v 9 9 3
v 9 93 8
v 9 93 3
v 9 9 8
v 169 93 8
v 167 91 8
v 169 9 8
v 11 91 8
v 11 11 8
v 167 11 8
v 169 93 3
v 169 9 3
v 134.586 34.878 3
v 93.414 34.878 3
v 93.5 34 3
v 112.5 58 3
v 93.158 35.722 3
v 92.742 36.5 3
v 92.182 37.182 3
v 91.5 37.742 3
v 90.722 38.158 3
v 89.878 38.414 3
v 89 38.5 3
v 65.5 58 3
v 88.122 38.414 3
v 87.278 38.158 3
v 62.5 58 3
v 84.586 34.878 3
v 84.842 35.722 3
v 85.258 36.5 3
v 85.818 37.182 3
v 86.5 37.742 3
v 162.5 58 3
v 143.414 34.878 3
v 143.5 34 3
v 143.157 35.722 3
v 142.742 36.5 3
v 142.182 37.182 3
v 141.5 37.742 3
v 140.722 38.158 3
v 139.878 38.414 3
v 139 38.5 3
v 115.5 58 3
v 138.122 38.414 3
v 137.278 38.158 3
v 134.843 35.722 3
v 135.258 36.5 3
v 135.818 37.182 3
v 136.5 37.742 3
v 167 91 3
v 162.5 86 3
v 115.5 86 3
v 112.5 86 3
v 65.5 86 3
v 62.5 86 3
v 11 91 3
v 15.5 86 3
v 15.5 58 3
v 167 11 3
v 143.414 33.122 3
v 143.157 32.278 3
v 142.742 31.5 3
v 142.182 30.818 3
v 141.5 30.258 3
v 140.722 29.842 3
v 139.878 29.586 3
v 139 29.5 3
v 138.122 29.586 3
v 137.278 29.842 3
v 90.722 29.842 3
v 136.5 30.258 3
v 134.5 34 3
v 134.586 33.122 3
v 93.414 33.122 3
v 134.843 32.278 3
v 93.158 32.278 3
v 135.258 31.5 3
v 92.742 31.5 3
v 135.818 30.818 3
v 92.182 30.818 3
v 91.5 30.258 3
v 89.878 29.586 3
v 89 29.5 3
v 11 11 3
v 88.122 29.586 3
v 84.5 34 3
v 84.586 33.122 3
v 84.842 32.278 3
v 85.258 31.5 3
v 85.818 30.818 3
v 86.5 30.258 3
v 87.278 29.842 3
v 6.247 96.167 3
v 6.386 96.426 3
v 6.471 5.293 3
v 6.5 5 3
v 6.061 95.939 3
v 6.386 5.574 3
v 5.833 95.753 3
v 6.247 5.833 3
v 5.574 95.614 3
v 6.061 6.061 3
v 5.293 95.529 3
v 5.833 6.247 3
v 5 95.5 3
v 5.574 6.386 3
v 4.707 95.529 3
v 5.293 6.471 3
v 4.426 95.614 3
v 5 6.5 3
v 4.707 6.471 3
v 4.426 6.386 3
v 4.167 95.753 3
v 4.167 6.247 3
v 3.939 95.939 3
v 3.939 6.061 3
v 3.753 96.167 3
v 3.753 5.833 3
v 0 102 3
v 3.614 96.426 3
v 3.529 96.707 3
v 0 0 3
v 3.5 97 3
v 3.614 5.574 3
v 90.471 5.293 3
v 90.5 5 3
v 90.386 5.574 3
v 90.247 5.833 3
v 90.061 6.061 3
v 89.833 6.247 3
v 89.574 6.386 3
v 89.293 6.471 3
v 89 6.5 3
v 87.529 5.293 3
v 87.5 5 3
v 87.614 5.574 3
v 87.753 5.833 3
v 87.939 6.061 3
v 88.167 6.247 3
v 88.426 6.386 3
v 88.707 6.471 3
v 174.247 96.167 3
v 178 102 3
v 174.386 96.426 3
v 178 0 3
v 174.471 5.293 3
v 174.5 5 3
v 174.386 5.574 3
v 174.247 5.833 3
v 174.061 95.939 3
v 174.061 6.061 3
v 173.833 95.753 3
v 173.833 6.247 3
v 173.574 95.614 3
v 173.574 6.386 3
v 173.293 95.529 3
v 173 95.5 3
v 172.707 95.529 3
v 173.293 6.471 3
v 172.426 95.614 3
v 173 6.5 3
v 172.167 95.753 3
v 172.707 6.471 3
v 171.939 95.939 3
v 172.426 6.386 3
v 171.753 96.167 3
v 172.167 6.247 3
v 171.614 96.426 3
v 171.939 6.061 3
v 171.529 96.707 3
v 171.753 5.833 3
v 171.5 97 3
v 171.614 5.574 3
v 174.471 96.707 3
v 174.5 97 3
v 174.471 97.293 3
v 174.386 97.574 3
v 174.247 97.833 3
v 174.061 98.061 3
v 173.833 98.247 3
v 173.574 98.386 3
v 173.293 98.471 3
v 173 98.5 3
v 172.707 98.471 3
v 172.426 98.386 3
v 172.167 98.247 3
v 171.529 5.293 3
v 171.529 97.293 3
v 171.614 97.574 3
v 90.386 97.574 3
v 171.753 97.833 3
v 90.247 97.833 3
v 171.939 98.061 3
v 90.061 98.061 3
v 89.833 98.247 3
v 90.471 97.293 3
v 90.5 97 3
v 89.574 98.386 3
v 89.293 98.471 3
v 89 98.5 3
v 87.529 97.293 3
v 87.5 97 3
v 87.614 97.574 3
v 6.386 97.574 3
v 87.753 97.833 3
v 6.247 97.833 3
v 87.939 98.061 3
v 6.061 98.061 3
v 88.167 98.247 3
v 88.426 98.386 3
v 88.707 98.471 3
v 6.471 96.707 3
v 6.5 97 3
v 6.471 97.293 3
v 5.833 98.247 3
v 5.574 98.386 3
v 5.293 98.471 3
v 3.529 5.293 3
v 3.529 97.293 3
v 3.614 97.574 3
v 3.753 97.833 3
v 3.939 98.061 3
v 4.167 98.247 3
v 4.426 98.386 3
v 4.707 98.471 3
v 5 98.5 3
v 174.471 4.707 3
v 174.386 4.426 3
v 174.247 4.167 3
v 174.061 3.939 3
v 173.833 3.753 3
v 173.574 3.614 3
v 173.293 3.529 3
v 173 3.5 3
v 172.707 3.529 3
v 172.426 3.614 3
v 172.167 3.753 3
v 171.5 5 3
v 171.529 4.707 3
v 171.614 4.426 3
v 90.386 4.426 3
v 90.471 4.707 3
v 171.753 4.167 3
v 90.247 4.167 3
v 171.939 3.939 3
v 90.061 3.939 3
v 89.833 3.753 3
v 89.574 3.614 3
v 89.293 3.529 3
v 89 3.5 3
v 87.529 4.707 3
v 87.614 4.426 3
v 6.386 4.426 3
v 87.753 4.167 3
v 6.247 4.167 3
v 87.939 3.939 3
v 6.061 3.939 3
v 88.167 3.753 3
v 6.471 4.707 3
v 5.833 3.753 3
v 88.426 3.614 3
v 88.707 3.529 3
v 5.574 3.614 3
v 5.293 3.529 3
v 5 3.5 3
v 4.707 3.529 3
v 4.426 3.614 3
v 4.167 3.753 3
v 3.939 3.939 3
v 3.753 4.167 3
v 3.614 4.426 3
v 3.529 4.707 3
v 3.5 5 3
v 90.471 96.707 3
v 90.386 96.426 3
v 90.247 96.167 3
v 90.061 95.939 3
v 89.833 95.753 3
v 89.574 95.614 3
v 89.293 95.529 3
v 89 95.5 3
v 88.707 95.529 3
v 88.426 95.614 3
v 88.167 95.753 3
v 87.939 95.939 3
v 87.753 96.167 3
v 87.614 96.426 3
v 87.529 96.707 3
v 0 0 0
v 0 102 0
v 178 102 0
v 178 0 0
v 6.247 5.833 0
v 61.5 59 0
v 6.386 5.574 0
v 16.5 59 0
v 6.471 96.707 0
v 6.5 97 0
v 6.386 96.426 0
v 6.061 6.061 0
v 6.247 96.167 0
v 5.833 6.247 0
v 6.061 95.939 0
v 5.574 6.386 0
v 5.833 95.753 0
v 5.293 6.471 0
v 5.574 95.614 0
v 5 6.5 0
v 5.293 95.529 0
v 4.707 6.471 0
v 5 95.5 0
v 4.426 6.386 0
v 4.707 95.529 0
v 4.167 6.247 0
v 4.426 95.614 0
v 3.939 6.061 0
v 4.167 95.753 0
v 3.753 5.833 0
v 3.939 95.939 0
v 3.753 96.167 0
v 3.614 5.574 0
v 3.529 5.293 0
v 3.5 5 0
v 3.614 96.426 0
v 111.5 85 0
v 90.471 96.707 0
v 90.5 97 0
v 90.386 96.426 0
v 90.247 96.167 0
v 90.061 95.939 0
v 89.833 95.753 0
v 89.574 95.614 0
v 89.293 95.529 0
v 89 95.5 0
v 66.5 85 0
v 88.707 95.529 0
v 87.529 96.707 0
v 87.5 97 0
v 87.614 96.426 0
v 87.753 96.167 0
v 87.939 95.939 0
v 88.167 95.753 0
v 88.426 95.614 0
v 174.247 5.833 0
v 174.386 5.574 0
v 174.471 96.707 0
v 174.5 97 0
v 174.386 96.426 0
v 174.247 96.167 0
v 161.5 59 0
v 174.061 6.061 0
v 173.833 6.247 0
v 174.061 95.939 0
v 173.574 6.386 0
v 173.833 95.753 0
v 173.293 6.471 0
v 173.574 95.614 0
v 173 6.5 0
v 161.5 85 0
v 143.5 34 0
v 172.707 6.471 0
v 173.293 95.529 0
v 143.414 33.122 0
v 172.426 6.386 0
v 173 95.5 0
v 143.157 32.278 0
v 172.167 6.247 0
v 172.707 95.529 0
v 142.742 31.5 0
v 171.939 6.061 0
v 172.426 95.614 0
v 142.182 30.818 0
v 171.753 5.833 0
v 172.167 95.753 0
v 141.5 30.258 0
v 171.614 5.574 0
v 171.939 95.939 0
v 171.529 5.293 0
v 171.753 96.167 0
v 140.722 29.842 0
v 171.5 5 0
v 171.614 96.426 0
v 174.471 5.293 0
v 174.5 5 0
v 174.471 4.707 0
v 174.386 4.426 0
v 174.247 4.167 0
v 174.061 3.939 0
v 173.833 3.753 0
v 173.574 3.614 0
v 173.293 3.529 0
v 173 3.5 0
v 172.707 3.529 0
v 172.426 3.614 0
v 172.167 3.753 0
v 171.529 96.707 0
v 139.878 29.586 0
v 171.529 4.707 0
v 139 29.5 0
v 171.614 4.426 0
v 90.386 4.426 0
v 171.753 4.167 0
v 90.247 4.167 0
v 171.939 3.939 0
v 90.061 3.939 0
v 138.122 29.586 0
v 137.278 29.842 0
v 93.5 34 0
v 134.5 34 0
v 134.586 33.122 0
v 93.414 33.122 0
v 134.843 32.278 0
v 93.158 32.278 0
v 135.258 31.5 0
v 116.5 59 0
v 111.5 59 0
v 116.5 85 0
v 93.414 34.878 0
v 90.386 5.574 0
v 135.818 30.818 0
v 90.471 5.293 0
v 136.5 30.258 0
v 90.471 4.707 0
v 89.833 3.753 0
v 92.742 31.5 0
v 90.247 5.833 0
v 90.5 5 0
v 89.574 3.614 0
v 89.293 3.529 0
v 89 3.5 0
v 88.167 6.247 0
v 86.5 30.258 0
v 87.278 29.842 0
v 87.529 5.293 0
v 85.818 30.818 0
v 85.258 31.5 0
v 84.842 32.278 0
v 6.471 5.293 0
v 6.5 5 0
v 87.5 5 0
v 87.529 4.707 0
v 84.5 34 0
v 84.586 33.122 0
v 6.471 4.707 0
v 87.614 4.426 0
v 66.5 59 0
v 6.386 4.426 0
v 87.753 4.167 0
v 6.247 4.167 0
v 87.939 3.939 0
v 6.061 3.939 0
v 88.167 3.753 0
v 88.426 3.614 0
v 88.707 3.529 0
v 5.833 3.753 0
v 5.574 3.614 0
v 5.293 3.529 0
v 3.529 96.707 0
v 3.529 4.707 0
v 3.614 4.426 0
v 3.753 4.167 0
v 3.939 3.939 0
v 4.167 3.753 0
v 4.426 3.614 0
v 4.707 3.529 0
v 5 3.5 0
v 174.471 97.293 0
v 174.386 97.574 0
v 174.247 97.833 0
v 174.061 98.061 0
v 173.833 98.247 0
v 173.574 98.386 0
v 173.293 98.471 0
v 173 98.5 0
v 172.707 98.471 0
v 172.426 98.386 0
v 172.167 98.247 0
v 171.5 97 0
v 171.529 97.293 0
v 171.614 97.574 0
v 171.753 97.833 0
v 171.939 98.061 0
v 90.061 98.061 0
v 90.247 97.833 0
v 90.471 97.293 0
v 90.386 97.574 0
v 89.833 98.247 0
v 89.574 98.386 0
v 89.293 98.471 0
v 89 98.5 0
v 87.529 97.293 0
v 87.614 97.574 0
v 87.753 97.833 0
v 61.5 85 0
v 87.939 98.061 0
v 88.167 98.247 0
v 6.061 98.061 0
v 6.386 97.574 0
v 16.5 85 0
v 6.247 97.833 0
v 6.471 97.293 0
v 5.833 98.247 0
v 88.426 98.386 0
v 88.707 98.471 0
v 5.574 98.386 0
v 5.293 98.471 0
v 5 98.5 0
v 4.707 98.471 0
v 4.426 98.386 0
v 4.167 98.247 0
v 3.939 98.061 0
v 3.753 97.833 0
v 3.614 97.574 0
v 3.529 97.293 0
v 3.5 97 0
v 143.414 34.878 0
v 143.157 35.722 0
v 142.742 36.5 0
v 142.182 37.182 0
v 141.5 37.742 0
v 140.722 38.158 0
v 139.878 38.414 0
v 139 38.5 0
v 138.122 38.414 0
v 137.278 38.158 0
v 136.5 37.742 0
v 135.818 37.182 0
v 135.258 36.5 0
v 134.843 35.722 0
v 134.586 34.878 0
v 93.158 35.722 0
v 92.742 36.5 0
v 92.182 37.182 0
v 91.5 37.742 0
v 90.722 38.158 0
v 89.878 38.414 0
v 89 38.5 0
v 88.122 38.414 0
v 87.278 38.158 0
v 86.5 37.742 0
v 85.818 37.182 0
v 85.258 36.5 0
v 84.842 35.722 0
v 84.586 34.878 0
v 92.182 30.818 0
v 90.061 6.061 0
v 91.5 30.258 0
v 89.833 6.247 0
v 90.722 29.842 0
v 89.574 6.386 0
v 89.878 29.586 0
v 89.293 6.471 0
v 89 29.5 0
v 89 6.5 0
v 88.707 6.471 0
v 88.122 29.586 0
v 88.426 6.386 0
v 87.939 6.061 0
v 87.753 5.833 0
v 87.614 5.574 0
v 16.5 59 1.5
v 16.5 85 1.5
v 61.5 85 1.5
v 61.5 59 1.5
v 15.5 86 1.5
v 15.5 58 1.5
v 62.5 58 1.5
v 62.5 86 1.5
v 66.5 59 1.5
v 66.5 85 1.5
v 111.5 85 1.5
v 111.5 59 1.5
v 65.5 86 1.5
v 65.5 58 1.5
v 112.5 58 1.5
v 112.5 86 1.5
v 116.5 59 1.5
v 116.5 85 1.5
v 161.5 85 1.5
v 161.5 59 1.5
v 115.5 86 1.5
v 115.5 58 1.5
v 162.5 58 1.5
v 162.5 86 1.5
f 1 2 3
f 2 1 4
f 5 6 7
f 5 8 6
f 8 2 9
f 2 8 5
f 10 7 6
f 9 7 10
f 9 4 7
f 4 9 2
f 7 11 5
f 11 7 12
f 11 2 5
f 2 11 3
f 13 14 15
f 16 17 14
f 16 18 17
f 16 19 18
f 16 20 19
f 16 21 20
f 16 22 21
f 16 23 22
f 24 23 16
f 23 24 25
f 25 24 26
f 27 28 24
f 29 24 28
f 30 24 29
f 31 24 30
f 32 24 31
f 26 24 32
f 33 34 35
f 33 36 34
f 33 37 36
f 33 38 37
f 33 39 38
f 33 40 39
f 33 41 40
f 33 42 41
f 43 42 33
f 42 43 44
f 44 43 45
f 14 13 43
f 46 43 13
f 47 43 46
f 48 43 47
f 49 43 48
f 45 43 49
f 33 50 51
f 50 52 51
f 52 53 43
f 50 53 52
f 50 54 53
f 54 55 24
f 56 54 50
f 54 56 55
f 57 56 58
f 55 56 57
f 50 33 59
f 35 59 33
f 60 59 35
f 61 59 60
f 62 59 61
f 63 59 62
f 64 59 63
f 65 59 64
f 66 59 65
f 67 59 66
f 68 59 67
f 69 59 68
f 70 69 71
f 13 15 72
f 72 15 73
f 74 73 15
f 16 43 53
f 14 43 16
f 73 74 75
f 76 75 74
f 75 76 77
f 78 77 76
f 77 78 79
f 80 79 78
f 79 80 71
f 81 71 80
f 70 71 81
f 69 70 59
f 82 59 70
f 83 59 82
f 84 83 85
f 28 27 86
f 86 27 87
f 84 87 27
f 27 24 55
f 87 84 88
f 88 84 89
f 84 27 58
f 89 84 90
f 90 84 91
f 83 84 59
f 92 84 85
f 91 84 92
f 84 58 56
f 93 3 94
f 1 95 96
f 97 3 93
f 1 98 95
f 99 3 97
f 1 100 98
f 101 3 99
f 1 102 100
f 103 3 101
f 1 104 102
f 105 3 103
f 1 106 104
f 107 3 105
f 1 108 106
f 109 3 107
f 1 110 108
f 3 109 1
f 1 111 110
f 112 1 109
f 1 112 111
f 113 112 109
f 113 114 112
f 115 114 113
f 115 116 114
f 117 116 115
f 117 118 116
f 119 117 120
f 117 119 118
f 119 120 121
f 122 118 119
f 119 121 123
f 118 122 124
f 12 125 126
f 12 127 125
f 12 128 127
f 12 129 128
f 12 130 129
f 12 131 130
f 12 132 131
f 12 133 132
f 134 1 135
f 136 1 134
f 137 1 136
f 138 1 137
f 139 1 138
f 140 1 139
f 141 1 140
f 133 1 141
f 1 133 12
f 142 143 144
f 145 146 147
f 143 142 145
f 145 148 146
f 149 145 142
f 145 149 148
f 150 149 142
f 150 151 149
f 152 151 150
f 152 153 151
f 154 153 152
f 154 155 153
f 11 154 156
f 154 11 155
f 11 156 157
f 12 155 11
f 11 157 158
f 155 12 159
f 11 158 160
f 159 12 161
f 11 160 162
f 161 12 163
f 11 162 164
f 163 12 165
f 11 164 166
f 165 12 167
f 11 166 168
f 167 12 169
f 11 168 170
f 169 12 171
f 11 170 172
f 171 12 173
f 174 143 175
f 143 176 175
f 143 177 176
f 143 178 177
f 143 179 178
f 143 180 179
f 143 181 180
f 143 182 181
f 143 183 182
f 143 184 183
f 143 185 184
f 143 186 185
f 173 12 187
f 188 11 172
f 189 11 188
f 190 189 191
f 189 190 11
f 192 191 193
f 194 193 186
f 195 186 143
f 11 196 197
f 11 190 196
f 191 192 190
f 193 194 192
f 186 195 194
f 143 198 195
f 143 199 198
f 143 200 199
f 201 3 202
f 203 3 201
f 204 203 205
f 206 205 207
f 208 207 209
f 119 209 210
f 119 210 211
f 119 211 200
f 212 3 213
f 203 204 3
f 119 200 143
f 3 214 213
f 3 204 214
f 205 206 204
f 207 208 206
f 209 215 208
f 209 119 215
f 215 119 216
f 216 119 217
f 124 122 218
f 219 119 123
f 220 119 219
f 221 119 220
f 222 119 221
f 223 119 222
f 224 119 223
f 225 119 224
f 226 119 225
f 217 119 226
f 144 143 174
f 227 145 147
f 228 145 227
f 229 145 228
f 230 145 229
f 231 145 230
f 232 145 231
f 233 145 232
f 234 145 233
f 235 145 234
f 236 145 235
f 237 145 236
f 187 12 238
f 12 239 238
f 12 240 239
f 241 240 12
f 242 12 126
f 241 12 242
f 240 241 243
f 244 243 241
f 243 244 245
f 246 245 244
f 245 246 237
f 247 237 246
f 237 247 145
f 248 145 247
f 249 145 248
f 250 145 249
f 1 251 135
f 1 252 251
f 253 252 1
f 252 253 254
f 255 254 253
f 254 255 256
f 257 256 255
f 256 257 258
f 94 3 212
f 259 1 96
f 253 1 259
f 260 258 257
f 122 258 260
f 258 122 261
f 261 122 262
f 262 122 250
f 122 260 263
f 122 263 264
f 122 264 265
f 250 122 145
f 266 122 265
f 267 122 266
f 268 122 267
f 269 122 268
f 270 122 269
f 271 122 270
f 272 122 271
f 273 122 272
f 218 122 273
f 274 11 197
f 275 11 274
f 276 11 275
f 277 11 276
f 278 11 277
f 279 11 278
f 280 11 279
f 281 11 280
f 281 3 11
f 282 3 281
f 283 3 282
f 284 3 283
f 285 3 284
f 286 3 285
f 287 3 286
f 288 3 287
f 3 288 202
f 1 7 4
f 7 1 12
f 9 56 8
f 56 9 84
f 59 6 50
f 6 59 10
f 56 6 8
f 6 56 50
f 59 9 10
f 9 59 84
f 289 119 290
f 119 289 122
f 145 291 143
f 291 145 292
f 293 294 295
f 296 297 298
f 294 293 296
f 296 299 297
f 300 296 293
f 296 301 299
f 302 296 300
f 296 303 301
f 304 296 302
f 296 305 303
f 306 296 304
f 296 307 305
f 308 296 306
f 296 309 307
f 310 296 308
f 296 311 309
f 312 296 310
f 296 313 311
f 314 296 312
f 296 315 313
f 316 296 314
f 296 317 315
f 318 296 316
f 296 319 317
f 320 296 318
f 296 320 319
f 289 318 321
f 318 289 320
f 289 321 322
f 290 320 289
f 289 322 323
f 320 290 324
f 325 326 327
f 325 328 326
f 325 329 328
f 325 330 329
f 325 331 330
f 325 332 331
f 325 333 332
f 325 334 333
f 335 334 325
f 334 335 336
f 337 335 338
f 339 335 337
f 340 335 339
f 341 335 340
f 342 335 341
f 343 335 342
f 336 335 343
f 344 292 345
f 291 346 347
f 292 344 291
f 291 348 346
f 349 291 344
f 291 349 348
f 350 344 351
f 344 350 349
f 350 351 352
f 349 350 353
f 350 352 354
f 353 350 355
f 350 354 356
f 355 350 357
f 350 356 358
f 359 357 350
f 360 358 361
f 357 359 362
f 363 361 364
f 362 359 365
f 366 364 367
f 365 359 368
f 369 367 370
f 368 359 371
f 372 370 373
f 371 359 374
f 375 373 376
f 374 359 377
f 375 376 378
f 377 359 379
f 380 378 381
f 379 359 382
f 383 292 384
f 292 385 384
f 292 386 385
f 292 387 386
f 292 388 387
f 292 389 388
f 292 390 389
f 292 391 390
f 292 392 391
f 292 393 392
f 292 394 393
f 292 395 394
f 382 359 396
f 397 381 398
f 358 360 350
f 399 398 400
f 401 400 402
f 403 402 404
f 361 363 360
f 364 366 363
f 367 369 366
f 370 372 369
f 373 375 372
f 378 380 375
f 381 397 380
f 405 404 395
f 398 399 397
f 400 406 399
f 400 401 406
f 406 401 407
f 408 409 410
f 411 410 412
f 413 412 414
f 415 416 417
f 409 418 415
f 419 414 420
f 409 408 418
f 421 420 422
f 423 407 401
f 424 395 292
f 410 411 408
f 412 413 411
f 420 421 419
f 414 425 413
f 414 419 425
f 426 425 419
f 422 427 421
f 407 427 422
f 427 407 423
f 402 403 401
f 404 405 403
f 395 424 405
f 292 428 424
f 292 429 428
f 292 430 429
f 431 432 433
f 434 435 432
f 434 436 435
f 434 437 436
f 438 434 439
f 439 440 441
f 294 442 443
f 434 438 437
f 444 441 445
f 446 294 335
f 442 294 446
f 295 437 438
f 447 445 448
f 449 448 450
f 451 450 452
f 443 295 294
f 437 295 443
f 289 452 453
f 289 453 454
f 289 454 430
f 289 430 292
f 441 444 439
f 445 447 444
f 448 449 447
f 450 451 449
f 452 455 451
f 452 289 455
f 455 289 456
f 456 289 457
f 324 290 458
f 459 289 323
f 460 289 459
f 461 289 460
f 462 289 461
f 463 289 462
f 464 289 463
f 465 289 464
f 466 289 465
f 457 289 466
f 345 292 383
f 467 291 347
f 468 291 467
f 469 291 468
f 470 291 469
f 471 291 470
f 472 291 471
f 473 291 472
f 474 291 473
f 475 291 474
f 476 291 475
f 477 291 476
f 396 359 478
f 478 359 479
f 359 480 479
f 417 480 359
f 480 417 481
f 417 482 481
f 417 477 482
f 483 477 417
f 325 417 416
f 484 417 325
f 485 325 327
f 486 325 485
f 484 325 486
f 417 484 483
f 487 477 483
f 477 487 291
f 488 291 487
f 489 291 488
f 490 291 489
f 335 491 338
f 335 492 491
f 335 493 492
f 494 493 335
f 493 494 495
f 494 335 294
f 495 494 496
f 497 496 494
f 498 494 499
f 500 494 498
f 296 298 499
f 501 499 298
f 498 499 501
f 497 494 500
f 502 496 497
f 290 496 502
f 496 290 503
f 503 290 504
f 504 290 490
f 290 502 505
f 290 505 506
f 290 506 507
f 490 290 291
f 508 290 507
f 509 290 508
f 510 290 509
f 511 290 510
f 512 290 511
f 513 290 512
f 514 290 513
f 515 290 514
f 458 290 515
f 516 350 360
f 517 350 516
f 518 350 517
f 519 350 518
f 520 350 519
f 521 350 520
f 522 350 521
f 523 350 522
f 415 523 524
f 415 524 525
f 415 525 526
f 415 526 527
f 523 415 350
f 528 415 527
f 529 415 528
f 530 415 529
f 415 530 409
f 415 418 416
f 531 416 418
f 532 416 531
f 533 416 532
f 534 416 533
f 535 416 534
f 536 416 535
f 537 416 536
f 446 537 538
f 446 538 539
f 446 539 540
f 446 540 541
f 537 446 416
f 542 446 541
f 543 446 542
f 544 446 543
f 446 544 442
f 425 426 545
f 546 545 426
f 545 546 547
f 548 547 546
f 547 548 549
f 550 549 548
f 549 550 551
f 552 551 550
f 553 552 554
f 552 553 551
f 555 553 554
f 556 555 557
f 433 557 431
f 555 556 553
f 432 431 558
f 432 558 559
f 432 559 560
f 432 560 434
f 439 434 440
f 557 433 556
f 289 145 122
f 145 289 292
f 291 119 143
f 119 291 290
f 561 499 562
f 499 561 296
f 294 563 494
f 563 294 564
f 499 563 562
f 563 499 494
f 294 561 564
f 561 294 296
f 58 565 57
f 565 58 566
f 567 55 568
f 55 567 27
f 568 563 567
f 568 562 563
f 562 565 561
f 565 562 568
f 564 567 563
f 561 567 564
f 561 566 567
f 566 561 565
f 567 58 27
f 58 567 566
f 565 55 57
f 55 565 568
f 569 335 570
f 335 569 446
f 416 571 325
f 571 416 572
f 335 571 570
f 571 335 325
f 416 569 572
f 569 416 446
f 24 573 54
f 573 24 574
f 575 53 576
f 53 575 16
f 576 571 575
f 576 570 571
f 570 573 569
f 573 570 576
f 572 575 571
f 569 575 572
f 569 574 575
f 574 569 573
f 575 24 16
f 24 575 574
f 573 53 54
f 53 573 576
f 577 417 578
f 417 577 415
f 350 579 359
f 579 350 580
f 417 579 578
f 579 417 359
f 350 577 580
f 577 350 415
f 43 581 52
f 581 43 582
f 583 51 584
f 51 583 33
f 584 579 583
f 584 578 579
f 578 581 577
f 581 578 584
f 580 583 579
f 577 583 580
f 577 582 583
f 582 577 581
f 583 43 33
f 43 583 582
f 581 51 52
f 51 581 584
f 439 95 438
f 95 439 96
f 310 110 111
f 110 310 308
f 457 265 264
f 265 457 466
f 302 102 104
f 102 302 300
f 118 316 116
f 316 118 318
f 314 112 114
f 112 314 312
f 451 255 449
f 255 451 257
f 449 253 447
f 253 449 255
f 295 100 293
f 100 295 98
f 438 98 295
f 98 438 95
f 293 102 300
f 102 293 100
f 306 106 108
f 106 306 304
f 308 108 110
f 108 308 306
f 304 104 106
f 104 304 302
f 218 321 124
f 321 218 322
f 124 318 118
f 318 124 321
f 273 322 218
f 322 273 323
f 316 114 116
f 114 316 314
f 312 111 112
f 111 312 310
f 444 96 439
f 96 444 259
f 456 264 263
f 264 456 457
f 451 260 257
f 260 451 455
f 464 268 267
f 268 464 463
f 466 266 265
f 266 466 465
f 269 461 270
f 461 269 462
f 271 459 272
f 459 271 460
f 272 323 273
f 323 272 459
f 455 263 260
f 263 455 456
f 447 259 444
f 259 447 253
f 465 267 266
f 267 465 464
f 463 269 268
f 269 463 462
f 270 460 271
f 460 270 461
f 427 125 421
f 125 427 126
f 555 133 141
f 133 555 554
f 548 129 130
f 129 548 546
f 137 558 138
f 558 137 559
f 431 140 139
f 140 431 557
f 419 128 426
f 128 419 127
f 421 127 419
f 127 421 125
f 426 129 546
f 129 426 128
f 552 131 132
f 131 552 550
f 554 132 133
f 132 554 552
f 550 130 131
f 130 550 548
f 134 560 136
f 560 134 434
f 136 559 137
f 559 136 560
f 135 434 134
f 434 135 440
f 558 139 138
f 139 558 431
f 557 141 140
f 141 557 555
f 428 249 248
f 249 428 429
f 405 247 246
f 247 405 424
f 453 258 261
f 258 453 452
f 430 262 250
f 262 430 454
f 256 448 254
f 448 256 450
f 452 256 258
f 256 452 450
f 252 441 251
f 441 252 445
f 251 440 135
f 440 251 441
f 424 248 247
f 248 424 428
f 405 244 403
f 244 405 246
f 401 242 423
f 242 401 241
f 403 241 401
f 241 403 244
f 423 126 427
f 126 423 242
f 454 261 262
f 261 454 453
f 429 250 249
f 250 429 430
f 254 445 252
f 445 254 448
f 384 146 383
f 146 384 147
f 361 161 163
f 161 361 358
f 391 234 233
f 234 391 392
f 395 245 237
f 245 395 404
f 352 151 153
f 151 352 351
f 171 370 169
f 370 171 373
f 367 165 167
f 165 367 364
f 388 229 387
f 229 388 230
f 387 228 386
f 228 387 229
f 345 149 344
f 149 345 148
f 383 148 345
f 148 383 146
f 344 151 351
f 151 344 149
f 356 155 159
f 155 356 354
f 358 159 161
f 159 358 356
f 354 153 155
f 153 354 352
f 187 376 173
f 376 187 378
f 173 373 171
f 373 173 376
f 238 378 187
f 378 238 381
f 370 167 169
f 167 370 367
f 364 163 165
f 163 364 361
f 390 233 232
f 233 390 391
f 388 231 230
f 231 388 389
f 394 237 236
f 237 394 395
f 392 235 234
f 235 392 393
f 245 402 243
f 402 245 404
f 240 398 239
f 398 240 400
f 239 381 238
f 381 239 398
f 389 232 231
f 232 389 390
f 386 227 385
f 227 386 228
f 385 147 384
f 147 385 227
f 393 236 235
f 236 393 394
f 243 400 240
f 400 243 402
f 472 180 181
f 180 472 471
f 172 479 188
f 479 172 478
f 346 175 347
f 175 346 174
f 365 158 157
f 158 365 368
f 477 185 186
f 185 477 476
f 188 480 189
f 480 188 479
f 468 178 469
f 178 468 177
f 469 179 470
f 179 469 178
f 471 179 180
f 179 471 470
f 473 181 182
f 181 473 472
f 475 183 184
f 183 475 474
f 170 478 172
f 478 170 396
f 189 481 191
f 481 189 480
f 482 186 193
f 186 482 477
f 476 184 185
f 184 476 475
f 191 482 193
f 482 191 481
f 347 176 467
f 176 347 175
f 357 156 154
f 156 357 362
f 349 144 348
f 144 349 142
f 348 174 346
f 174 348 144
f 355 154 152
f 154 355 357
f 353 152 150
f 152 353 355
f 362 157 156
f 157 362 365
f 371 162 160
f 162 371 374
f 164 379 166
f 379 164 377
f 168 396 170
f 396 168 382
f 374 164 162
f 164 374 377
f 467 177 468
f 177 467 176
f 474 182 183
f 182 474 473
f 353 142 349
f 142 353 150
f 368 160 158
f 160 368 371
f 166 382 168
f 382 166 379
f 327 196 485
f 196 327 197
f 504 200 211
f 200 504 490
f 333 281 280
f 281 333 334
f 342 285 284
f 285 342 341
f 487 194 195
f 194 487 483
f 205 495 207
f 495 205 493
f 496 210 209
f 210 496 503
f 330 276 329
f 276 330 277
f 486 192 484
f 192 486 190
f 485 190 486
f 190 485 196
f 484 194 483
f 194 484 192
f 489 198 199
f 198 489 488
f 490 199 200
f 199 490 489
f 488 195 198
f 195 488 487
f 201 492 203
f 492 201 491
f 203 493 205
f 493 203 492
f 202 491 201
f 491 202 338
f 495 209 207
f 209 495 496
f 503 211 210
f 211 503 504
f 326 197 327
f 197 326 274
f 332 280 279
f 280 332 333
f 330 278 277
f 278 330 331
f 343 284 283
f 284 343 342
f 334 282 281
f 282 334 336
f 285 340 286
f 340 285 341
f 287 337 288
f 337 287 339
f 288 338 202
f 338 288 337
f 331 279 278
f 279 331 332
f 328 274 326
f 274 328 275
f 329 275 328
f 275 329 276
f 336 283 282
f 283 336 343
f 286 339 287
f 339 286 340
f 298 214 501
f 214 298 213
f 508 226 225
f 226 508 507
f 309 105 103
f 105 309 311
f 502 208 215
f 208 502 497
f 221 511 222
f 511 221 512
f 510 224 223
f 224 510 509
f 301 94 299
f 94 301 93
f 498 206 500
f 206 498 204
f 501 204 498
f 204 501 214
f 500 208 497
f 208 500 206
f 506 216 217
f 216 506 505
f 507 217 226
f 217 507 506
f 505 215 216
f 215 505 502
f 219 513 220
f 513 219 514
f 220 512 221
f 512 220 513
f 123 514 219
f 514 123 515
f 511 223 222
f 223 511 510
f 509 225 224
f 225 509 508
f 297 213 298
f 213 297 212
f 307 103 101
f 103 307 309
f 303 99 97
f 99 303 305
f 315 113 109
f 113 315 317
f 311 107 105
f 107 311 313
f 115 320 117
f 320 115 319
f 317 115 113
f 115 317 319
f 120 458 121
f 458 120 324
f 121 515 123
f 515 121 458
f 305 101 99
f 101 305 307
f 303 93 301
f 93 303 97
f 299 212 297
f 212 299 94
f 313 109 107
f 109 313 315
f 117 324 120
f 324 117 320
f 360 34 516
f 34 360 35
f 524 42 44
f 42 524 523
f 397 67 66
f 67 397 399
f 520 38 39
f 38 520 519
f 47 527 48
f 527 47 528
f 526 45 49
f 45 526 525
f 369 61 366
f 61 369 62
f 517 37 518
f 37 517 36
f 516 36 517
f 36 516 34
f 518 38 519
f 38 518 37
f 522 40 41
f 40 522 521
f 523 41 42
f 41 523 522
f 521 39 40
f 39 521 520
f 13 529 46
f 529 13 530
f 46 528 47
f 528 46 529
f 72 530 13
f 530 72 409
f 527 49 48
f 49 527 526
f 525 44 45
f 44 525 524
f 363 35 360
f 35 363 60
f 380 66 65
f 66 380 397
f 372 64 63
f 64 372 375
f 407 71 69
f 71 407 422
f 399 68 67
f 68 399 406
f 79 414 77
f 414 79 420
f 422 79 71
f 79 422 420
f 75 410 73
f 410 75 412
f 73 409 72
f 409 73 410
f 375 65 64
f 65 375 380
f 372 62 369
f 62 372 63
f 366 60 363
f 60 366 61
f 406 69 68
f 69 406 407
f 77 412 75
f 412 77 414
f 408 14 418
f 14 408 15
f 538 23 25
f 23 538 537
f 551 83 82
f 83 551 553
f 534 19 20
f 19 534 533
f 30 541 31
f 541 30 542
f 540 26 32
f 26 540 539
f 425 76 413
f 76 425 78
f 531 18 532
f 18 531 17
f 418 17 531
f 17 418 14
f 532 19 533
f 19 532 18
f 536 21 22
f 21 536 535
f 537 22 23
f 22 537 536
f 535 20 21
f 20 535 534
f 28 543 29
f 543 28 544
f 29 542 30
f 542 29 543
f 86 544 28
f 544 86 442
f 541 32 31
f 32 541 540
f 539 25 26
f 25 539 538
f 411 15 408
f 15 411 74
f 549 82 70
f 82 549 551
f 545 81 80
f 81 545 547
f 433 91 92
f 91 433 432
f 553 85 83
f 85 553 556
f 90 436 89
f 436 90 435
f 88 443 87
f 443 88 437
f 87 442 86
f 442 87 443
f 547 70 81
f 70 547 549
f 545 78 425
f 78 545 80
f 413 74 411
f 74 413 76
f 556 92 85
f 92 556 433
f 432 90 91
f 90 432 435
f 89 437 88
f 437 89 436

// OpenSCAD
fn = 32;
inzetW = 160;
inzetH = 84;
inzetDikte = 5;
frontW = 178;
frontH = 102;
frontDikte = 3;

voltW = 45;
voltH = 26;

module front() {
    schroefD = 3;
    dx = (frontW - inzetW) / 2;
    dy = (frontH - inzetH) / 2;
    dz = (frontDikte);
    bd = 2;
    gatX = 5;
    gatY = 5;
    difference() {
        union() {
            cube([frontW, frontH, frontDikte]);
            translate([dx, dy, dz])
                difference() {
                    cube([inzetW, inzetH, inzetDikte]);
                    translate([bd,bd,0])
                        cube([inzetW-bd*2, inzetH-bd*2, inzetDikte]);
                }
        }
        union() {
            translate([gatX,gatY,0])
                cylinder(d=schroefD, h=dz, $fn=fn);
            translate([frontW / 2,gatY,0])
                cylinder(d=schroefD, h=dz, $fn=fn);
            translate([frontW-(gatX),gatY,0])
                cylinder(d=schroefD, h=dz, $fn=fn);
            translate([frontW-(gatX),(frontH-(gatY)),0])
                cylinder(d=schroefD, h=dz, $fn=fn);
            translate([frontW / 2,(frontH-(gatY)),0])
                cylinder(d=schroefD, h=dz, $fn=fn);
            translate([gatX,(frontH-(gatY)),0])
                cylinder(d=schroefD, h=dz, $fn=fn);
        }
    }
}

module voltGat() {
    union() {
        cube([voltW, voltH, frontDikte]);
        translate([-1, -1, 1.5])
            cube([voltW+2, voltH+2, frontDikte-1.5]);
    }
}

module voedingPotmeterGat() {
    d = 9;
    cylinder(d=d, h=frontDikte, $fn=fn);
}

module all() {
    voltDist = 5;
    voltX = (frontW - ((voltDist*2) + (voltW * 3))) / 2;
    voltY = frontH - (voltH + ((frontH - inzetH) / 2) + (8));
    voedingPotmeterY = frontH / 3;
    difference() {
        union() {
            front();
        }
        translate([voltX, voltY, 0])
            voltGat();
        translate([(frontW - voltW) / 2, voltY, 0])
            voltGat();
        translate([frontW - (voltX + voltW), voltY, 0])
            voltGat();
        translate([frontW - (voltX + (voltW / 2)), voedingPotmeterY, 0])
            voedingPotmeterGat();
        translate([(frontW / 2), voedingPotmeterY, 0])
            voedingPotmeterGat();
    }
}

all();
